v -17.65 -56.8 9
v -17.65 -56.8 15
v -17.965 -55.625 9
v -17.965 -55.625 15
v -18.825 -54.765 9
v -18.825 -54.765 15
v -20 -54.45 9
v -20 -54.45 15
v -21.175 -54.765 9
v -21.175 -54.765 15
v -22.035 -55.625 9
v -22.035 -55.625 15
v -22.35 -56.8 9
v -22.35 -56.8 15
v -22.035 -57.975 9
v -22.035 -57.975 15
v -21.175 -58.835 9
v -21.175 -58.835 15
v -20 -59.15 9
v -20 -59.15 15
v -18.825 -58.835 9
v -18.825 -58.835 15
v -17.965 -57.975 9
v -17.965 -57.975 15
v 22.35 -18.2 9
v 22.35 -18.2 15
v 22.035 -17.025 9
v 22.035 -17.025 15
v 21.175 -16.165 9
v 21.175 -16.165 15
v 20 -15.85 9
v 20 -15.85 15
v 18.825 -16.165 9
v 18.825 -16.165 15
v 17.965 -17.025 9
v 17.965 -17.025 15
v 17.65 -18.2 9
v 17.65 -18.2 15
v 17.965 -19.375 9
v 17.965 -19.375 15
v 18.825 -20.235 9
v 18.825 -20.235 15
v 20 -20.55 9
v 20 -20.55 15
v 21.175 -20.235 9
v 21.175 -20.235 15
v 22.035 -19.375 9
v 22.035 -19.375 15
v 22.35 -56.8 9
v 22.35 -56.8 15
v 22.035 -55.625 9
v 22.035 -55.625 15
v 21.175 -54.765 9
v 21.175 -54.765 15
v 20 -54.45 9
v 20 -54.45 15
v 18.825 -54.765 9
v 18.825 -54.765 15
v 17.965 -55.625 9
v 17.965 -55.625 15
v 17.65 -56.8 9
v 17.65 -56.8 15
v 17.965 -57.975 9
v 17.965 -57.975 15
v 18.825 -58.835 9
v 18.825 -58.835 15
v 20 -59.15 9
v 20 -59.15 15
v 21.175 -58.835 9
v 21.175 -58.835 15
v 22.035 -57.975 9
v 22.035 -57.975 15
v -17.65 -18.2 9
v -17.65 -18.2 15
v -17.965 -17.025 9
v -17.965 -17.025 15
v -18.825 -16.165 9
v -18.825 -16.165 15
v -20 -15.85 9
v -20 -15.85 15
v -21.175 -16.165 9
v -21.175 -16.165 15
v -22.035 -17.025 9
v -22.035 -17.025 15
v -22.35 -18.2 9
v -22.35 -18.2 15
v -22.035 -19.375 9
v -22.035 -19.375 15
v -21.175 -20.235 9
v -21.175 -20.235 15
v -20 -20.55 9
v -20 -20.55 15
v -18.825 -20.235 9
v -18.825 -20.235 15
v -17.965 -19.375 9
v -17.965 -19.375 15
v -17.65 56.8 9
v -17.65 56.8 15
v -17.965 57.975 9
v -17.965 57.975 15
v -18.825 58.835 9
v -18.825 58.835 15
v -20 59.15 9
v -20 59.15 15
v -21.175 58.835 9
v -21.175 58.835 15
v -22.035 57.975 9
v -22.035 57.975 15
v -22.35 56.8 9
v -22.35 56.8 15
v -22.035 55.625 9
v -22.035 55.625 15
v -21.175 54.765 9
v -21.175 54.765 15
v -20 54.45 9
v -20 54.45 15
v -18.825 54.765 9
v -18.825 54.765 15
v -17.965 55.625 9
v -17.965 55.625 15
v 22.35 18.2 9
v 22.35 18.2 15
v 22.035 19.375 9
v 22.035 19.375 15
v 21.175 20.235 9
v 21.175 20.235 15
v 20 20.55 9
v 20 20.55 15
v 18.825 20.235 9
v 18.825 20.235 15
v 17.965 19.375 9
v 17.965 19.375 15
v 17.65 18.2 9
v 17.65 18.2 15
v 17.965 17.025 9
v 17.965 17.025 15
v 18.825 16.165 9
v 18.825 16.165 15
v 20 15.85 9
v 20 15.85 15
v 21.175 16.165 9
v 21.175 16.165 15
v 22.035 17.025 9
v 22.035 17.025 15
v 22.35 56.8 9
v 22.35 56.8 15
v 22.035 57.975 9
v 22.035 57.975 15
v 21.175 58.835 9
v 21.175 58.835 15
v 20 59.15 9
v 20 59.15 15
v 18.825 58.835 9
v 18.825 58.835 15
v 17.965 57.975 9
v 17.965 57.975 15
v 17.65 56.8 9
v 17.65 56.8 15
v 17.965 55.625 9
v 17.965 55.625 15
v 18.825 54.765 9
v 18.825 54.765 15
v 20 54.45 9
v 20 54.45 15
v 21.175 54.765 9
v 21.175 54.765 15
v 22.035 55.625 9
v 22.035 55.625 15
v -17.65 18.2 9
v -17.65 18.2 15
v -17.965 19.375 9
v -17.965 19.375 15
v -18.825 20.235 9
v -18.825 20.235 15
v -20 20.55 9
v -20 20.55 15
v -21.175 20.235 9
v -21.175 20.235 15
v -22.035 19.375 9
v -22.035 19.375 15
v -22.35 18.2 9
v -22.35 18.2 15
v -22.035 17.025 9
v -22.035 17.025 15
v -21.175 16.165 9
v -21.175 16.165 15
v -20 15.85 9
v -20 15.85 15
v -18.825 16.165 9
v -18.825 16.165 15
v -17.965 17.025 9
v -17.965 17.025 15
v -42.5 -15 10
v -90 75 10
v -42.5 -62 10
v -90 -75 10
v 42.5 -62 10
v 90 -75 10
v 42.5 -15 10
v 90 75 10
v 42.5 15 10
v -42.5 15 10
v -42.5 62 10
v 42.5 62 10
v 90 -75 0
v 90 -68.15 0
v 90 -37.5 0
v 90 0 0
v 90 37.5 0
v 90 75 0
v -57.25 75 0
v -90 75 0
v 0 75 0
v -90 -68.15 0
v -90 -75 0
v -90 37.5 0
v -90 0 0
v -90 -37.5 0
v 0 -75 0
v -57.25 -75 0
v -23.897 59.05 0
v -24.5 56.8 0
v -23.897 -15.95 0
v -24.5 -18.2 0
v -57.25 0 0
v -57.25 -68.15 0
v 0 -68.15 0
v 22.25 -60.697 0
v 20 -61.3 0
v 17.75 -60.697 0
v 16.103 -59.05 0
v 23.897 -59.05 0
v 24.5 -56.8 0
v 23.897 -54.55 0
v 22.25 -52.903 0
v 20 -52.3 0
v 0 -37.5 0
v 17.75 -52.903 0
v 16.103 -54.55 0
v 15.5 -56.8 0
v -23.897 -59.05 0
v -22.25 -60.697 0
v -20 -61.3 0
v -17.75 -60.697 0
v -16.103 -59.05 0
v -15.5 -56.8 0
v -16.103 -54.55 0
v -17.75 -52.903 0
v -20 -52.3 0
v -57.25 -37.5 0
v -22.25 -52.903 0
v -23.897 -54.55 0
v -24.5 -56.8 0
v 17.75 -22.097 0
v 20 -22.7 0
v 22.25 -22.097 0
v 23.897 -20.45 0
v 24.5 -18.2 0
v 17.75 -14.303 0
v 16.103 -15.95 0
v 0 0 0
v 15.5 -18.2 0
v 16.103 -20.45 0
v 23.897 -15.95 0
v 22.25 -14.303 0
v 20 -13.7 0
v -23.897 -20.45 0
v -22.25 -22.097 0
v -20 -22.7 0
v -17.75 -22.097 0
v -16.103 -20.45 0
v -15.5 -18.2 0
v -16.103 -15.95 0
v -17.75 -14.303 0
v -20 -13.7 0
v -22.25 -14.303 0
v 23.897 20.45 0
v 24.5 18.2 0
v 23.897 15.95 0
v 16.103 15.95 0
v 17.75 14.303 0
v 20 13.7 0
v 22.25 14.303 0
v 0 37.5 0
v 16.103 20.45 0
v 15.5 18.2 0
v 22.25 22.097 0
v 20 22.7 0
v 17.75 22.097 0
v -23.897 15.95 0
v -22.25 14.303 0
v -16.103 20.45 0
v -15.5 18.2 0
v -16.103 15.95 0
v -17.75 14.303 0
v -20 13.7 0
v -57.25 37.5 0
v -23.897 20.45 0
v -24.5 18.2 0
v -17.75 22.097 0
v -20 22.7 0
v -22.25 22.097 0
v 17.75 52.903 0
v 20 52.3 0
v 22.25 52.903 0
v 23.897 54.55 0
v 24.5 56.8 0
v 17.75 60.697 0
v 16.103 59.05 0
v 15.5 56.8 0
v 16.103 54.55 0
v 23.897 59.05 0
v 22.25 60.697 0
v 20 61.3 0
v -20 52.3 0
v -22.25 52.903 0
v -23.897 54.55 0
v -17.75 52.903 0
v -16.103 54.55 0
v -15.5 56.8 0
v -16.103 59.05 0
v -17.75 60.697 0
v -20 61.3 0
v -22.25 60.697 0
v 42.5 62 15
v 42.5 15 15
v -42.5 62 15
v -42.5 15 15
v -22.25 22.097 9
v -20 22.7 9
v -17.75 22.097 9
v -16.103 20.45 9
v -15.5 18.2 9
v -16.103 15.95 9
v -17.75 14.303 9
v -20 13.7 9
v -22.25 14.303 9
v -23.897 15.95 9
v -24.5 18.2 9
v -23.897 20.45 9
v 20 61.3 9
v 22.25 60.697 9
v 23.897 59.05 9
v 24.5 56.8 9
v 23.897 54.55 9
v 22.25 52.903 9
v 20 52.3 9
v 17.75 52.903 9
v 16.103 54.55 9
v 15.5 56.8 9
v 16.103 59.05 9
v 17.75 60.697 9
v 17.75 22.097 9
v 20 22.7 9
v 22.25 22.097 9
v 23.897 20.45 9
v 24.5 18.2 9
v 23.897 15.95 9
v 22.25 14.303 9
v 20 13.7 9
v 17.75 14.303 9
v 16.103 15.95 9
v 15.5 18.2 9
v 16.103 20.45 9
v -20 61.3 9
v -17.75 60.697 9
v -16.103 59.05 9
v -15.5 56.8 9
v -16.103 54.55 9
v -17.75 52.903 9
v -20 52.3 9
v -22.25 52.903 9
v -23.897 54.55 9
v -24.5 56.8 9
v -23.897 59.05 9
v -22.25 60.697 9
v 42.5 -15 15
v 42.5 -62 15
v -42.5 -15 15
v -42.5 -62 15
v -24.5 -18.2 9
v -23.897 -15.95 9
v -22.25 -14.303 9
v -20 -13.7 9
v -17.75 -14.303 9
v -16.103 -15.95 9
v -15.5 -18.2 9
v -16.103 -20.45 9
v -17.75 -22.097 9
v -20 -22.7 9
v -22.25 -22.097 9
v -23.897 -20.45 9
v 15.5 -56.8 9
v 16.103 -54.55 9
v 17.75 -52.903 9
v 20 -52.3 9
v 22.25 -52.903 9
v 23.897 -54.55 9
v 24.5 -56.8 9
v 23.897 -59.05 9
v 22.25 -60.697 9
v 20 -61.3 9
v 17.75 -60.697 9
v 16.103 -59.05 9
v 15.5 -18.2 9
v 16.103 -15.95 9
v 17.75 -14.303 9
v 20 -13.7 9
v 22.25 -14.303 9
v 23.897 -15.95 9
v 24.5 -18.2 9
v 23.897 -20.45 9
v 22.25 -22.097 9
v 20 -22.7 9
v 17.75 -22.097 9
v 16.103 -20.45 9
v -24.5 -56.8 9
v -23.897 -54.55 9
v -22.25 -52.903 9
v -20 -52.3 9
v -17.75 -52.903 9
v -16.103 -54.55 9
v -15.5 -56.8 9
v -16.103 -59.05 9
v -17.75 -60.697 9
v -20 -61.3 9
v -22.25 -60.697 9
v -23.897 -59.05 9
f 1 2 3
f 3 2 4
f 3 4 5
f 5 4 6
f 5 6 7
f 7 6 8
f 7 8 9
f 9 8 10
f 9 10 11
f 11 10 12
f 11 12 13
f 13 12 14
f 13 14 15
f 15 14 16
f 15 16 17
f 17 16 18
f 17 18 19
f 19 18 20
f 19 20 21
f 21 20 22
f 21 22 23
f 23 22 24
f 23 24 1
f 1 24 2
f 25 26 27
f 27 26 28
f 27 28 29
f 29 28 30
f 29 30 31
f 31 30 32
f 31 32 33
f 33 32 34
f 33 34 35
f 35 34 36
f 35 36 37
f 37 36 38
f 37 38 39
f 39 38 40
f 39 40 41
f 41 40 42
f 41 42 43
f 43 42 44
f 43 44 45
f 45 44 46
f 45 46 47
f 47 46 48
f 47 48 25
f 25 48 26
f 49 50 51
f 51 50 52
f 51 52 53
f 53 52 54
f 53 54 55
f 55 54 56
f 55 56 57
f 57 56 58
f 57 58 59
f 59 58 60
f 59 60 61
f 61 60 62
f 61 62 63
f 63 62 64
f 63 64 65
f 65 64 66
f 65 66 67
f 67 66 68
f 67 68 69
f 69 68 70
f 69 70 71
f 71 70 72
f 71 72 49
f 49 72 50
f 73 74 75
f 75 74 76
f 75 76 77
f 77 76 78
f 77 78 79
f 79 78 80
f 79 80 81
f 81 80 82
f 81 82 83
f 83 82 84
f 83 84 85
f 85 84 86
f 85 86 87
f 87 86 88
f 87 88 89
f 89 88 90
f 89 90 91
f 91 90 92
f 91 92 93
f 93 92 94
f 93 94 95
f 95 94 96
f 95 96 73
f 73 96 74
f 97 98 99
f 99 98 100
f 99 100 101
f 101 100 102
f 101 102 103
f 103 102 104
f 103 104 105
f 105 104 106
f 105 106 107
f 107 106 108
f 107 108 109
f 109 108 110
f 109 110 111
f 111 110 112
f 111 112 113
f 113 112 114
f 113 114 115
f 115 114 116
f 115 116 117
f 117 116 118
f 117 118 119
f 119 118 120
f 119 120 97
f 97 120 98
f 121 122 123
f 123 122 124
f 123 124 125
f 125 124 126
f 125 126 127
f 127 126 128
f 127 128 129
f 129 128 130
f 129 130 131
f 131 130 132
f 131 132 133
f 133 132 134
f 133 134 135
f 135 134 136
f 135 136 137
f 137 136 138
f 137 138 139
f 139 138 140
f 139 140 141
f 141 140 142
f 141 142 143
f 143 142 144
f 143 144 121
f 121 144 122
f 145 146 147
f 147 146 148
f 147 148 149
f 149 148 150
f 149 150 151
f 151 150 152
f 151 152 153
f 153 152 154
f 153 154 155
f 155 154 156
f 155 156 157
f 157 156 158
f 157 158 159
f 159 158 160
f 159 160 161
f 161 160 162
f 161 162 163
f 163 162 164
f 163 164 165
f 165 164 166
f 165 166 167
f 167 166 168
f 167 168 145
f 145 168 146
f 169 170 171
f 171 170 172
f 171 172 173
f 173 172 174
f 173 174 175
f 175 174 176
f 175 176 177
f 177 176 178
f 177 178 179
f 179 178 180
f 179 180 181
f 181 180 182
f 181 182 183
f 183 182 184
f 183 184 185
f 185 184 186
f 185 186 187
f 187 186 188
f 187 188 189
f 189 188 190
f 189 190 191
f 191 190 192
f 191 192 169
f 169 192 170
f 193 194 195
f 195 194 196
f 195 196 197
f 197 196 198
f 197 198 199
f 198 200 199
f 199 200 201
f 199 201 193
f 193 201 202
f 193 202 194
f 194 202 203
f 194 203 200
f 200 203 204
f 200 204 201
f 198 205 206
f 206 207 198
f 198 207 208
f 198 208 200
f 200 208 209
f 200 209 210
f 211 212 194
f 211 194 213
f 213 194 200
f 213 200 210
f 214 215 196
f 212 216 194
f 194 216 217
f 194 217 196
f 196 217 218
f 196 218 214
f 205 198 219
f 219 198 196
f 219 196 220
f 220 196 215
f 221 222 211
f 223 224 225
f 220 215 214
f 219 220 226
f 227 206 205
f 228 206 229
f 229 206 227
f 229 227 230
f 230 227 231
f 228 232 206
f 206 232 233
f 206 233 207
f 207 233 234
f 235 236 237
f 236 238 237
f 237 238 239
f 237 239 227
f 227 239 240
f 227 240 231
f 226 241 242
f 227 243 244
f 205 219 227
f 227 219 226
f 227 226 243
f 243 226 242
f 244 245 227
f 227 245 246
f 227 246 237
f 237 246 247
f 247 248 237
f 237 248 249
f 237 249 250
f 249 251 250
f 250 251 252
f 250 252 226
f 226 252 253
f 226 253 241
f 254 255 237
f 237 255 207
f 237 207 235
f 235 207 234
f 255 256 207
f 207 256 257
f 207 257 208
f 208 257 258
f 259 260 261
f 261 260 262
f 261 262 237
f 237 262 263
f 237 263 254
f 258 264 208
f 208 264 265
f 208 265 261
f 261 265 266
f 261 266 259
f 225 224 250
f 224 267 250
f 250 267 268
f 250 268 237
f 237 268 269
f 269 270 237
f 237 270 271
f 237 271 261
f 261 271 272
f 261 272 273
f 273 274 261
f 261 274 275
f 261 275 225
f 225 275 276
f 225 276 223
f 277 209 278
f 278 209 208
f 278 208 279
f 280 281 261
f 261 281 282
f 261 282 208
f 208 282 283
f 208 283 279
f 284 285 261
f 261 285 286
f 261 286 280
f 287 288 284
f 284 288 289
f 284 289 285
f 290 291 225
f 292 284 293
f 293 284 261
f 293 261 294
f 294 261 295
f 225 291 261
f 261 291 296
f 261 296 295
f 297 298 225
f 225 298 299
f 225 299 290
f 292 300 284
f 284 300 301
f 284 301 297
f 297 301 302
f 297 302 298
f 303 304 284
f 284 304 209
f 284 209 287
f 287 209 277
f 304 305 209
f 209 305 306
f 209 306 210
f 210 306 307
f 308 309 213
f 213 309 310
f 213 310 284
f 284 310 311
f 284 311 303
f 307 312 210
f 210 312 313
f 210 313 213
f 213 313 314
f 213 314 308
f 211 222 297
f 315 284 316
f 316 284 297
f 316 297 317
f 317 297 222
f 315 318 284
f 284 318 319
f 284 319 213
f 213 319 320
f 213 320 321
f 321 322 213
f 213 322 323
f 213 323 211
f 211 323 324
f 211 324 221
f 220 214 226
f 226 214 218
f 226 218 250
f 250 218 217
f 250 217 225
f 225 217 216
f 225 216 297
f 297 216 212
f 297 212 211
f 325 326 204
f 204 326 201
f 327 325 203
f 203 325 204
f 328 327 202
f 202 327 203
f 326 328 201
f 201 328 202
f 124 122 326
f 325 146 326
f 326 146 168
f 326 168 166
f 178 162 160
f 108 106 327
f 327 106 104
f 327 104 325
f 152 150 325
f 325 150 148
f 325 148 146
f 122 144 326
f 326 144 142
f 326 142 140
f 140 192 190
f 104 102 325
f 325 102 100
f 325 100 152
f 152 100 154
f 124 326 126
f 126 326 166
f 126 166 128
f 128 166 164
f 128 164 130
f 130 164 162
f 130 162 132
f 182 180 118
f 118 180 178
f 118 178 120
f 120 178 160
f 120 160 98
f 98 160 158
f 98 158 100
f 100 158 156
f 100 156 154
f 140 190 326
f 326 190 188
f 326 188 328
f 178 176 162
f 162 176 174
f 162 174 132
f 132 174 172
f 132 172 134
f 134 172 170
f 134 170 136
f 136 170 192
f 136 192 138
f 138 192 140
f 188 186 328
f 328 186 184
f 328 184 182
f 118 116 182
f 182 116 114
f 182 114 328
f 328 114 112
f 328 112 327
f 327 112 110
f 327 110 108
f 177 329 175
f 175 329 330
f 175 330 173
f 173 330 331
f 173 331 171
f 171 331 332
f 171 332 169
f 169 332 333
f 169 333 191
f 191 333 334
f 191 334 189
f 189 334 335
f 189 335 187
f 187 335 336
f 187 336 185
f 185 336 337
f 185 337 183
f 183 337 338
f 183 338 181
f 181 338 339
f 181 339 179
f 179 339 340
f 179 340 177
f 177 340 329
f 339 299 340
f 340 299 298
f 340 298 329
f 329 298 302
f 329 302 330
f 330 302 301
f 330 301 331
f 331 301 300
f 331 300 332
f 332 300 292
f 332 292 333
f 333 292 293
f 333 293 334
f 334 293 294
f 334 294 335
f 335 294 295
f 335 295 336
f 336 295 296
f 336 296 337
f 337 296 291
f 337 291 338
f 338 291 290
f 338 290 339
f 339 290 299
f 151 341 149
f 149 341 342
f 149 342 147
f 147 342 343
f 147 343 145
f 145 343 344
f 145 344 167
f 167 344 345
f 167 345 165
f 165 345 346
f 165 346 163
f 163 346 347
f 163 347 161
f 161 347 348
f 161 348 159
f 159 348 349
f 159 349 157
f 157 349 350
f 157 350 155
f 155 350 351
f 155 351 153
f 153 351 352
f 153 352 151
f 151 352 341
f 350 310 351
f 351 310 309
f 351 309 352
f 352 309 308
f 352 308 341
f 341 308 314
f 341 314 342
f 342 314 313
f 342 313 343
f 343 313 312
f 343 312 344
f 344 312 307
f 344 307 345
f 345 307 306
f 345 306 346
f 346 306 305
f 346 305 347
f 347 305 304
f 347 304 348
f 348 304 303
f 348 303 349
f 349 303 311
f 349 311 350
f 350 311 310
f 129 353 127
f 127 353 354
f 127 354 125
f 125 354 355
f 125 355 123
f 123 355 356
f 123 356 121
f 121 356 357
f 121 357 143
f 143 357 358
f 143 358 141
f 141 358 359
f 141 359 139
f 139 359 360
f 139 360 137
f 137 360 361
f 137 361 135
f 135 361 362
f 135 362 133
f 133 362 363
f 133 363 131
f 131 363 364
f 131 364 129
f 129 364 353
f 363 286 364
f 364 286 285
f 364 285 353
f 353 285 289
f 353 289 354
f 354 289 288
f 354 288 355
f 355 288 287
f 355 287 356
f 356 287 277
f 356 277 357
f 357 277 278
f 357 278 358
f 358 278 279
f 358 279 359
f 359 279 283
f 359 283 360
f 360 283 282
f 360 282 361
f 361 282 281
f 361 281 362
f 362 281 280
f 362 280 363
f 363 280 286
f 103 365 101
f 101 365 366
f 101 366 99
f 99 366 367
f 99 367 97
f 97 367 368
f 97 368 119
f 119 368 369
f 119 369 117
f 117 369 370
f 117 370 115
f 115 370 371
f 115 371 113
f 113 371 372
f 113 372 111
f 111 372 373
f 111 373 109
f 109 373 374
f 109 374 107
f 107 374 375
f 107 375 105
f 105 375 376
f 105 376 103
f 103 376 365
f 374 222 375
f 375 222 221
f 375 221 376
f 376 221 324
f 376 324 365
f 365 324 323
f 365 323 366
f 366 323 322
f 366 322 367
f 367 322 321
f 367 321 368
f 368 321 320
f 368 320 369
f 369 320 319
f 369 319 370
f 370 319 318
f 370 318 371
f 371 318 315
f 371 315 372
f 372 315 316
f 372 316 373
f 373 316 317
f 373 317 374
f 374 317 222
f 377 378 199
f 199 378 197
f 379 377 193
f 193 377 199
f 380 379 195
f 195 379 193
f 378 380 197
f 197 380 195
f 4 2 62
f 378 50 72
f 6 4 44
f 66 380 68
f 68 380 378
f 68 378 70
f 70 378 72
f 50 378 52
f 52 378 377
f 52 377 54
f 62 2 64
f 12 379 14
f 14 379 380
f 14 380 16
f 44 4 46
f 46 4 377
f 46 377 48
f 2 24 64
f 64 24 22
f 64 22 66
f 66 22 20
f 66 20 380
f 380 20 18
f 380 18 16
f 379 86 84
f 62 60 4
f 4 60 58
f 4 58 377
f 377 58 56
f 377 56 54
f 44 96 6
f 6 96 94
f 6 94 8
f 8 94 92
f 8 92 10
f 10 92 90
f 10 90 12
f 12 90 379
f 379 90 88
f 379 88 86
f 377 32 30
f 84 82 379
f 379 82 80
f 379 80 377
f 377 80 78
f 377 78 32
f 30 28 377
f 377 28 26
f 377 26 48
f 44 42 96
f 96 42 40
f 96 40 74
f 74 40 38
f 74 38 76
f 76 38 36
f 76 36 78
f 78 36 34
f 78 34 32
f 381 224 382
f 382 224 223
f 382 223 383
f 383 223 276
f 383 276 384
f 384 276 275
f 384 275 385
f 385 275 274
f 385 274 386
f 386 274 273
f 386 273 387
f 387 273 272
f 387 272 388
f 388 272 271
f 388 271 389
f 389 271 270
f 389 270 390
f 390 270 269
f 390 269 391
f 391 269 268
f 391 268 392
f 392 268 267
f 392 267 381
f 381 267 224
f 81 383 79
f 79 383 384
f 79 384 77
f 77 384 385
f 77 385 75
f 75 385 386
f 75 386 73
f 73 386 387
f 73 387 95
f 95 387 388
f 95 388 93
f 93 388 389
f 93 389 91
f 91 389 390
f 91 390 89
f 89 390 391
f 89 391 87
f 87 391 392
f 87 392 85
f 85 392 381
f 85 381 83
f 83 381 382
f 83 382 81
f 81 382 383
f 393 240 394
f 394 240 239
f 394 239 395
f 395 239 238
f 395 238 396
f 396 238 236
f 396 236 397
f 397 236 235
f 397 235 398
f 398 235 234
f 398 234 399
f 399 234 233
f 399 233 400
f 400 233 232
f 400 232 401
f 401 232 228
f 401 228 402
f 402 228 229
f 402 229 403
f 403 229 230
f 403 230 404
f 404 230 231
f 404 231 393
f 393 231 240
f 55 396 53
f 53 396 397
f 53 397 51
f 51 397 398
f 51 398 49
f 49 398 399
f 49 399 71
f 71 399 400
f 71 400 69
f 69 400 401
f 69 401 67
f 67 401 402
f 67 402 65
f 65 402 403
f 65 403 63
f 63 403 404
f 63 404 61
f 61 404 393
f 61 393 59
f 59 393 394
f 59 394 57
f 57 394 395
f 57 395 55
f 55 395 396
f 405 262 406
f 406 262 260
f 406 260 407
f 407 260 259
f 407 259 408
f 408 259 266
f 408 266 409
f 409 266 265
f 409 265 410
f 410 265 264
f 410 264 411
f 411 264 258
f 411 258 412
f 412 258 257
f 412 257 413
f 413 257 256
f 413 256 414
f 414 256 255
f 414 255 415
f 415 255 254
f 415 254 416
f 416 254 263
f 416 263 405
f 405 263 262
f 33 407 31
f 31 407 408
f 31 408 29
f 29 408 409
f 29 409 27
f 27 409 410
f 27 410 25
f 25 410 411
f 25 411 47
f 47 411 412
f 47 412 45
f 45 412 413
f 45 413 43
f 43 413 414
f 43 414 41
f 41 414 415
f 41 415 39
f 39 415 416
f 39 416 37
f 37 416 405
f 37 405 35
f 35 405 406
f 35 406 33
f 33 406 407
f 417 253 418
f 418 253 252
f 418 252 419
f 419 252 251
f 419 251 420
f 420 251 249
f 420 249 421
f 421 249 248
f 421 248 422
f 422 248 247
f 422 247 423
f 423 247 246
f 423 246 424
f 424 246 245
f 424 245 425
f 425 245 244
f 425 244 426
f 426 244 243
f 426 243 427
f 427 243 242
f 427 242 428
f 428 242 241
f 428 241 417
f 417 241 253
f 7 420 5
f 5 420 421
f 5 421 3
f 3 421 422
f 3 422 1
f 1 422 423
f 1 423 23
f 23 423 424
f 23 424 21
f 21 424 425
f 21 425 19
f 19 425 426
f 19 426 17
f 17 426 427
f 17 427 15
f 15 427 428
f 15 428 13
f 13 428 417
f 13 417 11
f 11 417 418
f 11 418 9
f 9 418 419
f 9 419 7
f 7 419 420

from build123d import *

# Parameters (mm, degrees)
SKIZZE1_W                       = 180
SKIZZE1_H                       = 150
AUFSATZ_LINEAR_AUSTRAGEN1_DEPTH = 10
SKIZZE2_W                       = 85
SKIZZE2_H                       = 47
AUFSATZ_LINEAR_AUSTRAGEN2_DEPTH = 5
SKIZZE4_R                       = 2.35
SCHNITT_LINEAR_AUSTRAGEN1_DEPTH = 119.11011811
SKIZZE5_R                       = 4.5
SCHNITT_LINEAR_AUSTRAGEN2_DEPTH = 9


with BuildPart() as part:
    # Skizze1 → Aufsatz-Linear austragen1 (new body)
    with BuildSketch(Plane.XY):
        Rectangle(SKIZZE1_W, SKIZZE1_H)
    extrude(amount=AUFSATZ_LINEAR_AUSTRAGEN1_DEPTH)

    # Skizze2 → Aufsatz-Linear austragen2 (add)
    with BuildSketch(Plane.XY.offset(10)):
        with Locations((0, 38.5)):
            Rectangle(SKIZZE2_W, SKIZZE2_H)
    aufsatz_linear_austragen2 = extrude(amount=AUFSATZ_LINEAR_AUSTRAGEN2_DEPTH)

    # Skizze4 → Schnitt-Linear austragen1 (cut, symmetric)
    with BuildSketch(Plane.XY.offset(15)):
        with Locations((-20, 56.8)):
            Circle(SKIZZE4_R)
        with Locations((-20, 18.2)):
            Circle(SKIZZE4_R)
        with Locations((20, 56.8)):
            Circle(SKIZZE4_R)
        with Locations((20, 18.2)):
            Circle(SKIZZE4_R)
    schnitt_linear_austragen1 = extrude(amount=SCHNITT_LINEAR_AUSTRAGEN1_DEPTH, both=True, mode=Mode.SUBTRACT)

    # Skizze5 → Schnitt-Linear austragen2 (cut)
    with BuildSketch(Plane(origin=(0, 0, 0), x_dir=(-1, 0, 0), z_dir=(0, 0, -1))):
        with Locations((-20, 56.8)):
            Circle(SKIZZE5_R)
        with Locations((20, 56.8)):
            Circle(SKIZZE5_R)
        with Locations((20, 18.2)):
            Circle(SKIZZE5_R)
        with Locations((-20, 18.2)):
            Circle(SKIZZE5_R)
    schnitt_linear_austragen2 = extrude(amount=-SCHNITT_LINEAR_AUSTRAGEN2_DEPTH, mode=Mode.SUBTRACT)

    # Spiegeln8: Aufsatz-Linear austragen2, Schnitt-Linear austragen1, Schnitt-Linear austragen2 across plane
    add(aufsatz_linear_austragen2.mirror(Plane.ZX))
    add(schnitt_linear_austragen1.mirror(Plane.ZX), mode=Mode.SUBTRACT)
    add(schnitt_linear_austragen2.mirror(Plane.ZX), mode=Mode.SUBTRACT)


solid = part.part
